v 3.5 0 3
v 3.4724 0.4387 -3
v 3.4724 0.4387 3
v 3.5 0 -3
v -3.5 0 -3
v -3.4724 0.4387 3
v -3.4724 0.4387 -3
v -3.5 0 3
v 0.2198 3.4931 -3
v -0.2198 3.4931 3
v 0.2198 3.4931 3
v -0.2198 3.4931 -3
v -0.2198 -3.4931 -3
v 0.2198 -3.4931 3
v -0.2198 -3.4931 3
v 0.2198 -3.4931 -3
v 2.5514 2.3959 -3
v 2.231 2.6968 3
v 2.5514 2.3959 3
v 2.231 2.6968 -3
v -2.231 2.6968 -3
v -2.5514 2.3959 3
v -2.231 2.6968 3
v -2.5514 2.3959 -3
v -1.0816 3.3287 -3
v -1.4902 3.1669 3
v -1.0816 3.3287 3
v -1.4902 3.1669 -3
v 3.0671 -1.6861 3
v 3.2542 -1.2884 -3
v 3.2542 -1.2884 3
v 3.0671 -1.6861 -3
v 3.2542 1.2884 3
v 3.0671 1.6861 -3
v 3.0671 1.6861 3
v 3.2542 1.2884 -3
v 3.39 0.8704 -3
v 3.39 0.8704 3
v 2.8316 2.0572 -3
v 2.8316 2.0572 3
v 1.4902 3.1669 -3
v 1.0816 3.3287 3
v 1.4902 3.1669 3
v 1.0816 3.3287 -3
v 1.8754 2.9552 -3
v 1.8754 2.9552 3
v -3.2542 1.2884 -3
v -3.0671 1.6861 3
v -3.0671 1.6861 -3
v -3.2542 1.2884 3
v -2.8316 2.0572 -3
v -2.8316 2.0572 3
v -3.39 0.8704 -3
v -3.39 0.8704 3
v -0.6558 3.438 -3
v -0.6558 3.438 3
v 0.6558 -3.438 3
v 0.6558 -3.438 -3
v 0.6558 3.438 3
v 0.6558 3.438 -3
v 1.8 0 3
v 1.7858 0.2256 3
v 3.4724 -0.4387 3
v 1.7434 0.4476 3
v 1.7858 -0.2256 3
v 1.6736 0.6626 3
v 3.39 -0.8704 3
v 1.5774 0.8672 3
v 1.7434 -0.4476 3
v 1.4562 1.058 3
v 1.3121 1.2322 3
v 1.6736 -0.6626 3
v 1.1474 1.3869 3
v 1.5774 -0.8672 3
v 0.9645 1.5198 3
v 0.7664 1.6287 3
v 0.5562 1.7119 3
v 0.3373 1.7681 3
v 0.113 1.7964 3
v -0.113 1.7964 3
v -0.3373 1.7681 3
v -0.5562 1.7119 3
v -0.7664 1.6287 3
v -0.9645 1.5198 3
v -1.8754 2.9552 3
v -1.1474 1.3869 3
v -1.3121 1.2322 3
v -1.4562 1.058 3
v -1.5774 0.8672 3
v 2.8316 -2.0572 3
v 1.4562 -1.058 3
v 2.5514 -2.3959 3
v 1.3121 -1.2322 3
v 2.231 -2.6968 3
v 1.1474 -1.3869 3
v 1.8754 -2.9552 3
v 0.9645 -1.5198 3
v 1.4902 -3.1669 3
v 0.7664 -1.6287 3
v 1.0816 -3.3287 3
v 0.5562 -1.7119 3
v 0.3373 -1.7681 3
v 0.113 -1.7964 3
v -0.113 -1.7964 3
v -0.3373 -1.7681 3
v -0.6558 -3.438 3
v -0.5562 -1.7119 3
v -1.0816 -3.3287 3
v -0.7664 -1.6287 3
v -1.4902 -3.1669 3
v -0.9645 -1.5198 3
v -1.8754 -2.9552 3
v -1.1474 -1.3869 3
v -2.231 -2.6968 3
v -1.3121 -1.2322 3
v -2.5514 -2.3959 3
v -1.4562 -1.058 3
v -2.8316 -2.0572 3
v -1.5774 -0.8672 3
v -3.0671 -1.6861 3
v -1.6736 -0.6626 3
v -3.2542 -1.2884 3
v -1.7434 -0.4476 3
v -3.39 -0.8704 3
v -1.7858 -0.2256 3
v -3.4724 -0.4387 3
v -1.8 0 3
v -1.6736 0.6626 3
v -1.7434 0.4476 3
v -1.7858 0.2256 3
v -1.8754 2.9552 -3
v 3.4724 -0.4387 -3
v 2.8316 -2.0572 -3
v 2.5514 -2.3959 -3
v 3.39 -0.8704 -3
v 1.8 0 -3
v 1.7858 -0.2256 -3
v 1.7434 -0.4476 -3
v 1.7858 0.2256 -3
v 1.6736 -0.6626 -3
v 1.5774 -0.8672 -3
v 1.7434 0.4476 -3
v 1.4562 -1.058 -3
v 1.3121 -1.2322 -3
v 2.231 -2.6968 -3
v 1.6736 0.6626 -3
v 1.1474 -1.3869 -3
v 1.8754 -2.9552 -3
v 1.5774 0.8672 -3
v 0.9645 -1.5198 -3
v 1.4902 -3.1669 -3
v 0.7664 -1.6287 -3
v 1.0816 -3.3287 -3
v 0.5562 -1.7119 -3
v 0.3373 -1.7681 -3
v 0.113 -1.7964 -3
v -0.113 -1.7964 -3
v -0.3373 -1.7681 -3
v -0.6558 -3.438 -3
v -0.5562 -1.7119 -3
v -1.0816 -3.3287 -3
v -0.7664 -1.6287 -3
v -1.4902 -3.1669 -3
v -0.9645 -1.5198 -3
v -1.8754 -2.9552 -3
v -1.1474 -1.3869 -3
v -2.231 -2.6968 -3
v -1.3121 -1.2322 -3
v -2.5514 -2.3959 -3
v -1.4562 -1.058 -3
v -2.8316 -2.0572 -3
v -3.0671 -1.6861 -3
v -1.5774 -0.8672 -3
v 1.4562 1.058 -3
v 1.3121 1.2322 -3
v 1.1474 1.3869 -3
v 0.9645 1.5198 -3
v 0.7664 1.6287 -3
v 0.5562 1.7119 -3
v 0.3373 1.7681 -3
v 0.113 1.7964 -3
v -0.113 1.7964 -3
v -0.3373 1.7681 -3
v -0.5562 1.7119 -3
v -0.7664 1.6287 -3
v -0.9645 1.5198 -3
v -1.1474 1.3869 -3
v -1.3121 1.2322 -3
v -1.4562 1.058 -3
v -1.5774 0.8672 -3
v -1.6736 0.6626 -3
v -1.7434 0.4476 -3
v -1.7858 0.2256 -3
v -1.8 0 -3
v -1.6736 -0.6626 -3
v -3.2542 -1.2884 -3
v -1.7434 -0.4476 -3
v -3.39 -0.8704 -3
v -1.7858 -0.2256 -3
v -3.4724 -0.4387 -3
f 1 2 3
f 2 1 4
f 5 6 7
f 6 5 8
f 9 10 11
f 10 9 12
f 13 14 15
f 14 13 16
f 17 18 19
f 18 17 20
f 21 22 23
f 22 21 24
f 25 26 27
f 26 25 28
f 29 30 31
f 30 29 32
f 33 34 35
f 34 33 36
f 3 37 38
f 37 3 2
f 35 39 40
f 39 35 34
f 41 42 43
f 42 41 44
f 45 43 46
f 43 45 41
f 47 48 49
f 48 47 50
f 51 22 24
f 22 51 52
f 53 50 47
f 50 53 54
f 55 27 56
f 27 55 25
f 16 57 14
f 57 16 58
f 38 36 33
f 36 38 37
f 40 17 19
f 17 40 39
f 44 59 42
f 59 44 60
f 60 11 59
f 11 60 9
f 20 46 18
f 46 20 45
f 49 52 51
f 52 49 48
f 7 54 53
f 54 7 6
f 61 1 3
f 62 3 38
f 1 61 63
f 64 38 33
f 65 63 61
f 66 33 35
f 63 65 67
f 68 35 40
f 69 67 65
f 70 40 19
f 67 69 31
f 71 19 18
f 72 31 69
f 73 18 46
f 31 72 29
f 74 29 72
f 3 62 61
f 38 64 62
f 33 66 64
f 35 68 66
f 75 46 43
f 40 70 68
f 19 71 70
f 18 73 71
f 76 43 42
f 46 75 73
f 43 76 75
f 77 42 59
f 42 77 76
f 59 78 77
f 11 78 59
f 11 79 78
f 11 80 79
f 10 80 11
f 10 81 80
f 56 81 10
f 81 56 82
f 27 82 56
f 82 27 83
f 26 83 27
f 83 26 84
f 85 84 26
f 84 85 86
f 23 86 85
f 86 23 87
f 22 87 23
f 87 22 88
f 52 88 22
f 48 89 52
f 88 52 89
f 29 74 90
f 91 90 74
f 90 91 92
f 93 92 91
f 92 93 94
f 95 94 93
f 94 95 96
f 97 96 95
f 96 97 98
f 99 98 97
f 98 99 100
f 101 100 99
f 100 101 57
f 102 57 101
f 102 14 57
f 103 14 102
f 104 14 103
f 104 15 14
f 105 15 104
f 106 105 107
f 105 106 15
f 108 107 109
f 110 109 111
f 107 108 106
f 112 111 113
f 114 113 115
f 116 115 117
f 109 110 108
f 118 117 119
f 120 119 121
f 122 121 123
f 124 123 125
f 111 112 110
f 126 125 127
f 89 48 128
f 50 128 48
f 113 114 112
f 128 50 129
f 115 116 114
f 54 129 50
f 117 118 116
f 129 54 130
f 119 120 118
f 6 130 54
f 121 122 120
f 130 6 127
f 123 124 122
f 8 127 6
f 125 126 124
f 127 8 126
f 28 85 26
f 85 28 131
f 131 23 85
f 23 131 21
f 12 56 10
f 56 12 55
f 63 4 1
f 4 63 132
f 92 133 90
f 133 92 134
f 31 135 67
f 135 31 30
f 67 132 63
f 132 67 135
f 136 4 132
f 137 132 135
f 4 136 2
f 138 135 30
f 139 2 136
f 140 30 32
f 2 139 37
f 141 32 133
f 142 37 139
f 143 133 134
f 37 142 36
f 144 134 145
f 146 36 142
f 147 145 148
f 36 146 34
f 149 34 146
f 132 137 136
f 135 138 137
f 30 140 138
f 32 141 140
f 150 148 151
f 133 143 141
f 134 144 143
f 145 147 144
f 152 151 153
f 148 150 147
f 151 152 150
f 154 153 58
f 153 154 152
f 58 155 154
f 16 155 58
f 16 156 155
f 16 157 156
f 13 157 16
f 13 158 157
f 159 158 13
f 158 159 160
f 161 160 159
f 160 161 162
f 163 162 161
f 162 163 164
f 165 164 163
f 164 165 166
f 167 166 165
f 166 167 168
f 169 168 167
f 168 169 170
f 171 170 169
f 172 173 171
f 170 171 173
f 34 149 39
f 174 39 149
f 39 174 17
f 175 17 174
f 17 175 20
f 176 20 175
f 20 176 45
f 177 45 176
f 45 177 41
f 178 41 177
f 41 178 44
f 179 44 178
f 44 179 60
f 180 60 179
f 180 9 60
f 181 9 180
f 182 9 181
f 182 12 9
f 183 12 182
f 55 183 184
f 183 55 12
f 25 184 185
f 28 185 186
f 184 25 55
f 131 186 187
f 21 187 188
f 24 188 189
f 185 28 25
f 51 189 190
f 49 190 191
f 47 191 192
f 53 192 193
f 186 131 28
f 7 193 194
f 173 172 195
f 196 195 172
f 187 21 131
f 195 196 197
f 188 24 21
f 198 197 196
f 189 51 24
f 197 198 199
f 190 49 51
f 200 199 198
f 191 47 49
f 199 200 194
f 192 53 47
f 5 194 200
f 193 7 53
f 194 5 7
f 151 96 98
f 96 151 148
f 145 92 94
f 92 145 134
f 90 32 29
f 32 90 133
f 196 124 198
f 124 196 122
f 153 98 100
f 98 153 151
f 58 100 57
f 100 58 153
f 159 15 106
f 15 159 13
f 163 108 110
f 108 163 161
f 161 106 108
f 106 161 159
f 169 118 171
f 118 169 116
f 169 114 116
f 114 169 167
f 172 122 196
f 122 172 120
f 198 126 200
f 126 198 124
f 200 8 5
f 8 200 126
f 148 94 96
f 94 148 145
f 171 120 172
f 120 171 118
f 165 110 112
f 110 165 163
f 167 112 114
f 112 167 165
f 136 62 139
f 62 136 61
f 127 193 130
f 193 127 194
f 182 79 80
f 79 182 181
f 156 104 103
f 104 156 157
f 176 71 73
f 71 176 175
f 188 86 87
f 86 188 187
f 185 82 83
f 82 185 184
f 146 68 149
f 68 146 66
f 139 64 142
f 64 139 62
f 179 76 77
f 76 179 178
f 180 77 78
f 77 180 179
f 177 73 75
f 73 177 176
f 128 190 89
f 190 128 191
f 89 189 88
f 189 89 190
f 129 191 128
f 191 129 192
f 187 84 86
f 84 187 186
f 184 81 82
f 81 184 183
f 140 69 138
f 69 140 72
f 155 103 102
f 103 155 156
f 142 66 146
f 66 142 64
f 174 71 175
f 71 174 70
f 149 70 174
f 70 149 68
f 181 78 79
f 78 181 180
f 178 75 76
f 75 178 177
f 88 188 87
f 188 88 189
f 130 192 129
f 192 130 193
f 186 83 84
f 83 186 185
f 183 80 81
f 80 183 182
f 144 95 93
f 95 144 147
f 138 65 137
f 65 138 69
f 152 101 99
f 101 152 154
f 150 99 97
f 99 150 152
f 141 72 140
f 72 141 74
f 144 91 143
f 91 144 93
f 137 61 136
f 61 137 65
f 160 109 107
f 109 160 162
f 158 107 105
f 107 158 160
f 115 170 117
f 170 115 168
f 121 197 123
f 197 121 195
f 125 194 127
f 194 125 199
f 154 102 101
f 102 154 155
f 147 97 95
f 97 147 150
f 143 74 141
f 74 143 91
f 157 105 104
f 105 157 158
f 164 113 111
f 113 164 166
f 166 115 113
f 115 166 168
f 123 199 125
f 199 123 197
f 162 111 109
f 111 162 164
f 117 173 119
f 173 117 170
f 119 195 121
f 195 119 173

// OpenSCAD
$fn = 50;


difference() {
	union() {
		translate(v = [0, 0, -3.0000000000]) {
			cylinder(h = 6, r = 3.5000000000);
		}
	}
	union() {
		translate(v = [0, 0, -100.0000000000]) {
			cylinder(h = 200, r = 1.8000000000);
		}
	}
}
